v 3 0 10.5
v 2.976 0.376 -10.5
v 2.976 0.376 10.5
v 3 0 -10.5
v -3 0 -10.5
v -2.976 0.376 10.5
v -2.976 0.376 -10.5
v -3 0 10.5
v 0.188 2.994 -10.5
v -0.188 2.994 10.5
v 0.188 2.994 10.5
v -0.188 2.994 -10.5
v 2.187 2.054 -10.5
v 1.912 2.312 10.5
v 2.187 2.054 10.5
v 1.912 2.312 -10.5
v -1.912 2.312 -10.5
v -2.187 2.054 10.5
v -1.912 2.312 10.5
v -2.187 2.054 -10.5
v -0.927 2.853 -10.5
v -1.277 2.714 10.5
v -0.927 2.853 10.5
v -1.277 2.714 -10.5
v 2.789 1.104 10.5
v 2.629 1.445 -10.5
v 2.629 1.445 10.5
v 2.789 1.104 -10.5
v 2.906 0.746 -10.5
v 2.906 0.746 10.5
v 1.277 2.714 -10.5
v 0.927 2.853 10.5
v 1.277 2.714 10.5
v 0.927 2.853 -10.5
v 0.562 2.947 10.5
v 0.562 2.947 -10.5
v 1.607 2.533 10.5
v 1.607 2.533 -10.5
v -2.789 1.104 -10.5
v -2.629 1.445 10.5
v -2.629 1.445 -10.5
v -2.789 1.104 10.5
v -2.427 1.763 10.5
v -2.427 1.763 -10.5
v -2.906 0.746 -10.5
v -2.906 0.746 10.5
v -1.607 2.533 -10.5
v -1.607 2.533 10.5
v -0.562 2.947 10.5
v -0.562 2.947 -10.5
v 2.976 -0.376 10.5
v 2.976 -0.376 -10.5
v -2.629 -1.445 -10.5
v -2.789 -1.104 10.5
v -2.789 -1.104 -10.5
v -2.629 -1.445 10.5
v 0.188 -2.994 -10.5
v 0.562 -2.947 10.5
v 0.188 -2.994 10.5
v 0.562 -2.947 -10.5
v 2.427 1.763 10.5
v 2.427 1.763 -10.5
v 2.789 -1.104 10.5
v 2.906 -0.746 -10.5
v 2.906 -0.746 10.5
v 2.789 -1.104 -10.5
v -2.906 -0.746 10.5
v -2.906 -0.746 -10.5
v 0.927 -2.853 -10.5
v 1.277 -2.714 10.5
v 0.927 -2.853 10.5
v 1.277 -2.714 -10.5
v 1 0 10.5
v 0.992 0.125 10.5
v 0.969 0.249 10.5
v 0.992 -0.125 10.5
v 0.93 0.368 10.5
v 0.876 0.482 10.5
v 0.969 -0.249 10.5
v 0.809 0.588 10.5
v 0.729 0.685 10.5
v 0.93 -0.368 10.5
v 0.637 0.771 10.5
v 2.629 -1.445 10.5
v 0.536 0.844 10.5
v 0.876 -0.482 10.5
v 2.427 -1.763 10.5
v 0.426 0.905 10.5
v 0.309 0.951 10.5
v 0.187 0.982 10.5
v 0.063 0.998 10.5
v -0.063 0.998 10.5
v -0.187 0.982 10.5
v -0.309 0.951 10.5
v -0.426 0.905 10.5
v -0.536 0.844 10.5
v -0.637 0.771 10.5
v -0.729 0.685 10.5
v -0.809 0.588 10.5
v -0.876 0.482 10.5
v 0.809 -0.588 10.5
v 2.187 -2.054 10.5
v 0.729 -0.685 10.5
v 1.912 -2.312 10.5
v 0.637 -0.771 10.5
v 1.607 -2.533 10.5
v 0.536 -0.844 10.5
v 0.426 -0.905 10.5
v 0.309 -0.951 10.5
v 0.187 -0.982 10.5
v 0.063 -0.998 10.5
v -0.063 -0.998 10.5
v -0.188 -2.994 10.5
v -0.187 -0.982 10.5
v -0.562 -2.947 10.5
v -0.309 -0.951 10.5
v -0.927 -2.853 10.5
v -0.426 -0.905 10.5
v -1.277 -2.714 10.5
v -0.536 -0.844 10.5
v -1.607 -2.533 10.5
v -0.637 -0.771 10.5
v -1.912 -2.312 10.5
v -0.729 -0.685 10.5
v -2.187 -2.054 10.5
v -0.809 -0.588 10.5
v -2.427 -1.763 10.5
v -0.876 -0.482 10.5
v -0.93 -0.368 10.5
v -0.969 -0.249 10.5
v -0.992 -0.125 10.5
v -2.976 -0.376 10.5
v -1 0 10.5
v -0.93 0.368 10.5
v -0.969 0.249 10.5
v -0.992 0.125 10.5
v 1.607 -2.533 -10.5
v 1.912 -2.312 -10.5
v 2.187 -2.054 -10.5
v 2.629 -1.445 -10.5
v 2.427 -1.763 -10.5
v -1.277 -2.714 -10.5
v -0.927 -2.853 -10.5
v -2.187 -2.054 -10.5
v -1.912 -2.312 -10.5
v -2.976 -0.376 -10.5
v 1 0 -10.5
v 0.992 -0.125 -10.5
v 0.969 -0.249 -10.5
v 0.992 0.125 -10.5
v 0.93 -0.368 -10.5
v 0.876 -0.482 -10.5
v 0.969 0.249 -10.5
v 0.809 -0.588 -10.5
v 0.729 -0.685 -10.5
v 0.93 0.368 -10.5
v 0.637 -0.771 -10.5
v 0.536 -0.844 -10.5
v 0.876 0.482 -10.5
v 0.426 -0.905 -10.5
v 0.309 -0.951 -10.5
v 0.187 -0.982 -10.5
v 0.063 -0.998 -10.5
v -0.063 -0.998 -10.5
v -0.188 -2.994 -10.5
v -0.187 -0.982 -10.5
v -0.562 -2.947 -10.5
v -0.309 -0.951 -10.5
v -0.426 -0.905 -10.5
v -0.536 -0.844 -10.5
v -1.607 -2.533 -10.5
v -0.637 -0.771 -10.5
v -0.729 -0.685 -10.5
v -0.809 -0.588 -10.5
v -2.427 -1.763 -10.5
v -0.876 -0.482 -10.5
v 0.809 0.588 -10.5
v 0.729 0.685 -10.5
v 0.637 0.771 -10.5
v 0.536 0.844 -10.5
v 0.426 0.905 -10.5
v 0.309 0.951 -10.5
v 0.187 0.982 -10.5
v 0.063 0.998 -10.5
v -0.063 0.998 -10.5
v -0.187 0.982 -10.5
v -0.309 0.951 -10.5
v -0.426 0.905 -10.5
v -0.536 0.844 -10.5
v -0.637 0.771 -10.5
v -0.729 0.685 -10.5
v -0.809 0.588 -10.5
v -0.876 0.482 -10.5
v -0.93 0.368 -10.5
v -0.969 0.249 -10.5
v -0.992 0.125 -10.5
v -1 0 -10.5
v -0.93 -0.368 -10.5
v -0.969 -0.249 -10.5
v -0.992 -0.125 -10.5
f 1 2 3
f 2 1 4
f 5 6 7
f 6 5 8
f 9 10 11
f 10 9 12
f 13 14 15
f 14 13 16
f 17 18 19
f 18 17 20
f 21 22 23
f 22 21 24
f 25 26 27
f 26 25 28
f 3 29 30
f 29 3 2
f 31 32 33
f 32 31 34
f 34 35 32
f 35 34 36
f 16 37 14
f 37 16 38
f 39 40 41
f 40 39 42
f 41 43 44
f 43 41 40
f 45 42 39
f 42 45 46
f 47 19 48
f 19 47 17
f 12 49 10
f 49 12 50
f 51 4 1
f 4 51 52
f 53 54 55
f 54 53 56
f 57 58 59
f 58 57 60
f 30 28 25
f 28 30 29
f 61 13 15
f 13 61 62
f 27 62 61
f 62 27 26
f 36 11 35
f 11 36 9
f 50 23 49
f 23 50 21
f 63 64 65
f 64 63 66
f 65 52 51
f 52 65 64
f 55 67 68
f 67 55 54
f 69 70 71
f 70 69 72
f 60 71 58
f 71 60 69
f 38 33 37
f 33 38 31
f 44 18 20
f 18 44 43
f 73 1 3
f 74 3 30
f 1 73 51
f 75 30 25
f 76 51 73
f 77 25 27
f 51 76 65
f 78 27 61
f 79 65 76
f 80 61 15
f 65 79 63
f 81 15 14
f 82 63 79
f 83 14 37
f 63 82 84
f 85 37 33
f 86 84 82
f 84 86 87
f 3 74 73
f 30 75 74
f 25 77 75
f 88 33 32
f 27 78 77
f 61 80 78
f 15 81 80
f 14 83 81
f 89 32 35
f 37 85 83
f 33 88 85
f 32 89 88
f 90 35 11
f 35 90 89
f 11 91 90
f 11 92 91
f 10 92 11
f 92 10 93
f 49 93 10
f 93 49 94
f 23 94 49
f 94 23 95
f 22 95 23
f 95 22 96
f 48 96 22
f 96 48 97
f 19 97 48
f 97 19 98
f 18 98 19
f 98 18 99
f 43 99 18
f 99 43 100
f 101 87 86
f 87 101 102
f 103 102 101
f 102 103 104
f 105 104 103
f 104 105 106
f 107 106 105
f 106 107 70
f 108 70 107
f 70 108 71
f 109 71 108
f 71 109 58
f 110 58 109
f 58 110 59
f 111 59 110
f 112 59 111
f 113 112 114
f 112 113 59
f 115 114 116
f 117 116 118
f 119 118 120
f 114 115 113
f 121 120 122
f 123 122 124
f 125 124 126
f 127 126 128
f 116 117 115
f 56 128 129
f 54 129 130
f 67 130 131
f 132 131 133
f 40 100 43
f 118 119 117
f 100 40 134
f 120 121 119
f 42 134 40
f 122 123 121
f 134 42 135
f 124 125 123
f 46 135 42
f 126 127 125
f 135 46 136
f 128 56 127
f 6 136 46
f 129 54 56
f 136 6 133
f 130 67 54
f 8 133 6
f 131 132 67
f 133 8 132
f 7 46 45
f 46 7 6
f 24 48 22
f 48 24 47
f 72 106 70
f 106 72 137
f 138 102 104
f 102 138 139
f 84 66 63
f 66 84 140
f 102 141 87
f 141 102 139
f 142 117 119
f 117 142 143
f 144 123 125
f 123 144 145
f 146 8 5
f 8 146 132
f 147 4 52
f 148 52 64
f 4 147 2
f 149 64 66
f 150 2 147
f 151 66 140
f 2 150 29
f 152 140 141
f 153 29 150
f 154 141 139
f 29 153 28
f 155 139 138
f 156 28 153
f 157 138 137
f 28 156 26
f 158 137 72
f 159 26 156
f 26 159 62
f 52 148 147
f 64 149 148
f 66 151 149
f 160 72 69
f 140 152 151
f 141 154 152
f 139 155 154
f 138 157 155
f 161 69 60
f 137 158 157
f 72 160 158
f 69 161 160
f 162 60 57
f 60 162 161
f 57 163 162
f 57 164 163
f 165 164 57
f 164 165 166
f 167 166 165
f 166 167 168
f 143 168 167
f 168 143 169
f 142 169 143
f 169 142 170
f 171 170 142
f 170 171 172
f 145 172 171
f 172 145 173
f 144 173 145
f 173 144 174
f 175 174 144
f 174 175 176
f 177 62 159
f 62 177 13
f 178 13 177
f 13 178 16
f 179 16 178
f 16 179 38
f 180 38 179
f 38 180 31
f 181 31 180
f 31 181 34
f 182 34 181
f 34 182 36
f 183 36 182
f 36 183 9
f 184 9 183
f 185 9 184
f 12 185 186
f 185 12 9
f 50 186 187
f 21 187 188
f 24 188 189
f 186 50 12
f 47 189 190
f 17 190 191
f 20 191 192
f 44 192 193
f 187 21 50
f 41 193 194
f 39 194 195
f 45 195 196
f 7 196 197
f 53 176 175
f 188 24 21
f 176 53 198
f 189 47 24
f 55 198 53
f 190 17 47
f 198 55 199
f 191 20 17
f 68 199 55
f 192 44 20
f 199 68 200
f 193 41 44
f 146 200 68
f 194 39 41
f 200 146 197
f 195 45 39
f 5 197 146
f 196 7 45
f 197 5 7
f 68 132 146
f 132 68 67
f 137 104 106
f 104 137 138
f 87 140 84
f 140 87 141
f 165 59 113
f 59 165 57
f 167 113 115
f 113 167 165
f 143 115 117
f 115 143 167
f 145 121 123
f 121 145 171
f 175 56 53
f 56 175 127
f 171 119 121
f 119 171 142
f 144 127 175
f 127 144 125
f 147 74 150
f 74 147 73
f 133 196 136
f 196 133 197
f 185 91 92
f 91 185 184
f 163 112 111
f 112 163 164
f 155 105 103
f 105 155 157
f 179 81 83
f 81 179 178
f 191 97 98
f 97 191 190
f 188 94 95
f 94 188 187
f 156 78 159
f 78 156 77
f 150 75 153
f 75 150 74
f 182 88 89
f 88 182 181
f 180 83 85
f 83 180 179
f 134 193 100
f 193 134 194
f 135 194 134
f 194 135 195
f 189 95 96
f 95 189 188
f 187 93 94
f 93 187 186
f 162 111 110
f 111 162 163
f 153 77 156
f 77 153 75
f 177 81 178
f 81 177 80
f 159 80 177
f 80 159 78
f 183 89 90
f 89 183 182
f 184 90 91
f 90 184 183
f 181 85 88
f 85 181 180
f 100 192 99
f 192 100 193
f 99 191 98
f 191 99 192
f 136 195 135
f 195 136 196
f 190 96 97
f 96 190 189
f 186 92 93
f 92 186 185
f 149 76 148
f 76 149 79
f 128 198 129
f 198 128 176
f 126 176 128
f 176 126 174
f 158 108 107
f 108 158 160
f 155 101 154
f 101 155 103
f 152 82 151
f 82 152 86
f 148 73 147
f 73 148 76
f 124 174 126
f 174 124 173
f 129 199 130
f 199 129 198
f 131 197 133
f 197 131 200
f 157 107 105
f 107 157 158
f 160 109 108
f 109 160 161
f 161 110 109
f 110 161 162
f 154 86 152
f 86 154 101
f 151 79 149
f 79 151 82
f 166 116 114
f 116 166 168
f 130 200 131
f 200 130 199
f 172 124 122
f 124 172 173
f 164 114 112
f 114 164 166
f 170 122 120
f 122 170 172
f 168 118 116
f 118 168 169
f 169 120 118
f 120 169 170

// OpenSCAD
$fn = 50;


difference() {
	union() {
		translate(v = [0, 0, -10.5000000000]) {
			cylinder(h = 21, r = 3.0000000000);
		}
	}
	union() {
		translate(v = [0, 0, -100.0000000000]) {
			cylinder(h = 200, r = 1.0000000000);
		}
	}
}
